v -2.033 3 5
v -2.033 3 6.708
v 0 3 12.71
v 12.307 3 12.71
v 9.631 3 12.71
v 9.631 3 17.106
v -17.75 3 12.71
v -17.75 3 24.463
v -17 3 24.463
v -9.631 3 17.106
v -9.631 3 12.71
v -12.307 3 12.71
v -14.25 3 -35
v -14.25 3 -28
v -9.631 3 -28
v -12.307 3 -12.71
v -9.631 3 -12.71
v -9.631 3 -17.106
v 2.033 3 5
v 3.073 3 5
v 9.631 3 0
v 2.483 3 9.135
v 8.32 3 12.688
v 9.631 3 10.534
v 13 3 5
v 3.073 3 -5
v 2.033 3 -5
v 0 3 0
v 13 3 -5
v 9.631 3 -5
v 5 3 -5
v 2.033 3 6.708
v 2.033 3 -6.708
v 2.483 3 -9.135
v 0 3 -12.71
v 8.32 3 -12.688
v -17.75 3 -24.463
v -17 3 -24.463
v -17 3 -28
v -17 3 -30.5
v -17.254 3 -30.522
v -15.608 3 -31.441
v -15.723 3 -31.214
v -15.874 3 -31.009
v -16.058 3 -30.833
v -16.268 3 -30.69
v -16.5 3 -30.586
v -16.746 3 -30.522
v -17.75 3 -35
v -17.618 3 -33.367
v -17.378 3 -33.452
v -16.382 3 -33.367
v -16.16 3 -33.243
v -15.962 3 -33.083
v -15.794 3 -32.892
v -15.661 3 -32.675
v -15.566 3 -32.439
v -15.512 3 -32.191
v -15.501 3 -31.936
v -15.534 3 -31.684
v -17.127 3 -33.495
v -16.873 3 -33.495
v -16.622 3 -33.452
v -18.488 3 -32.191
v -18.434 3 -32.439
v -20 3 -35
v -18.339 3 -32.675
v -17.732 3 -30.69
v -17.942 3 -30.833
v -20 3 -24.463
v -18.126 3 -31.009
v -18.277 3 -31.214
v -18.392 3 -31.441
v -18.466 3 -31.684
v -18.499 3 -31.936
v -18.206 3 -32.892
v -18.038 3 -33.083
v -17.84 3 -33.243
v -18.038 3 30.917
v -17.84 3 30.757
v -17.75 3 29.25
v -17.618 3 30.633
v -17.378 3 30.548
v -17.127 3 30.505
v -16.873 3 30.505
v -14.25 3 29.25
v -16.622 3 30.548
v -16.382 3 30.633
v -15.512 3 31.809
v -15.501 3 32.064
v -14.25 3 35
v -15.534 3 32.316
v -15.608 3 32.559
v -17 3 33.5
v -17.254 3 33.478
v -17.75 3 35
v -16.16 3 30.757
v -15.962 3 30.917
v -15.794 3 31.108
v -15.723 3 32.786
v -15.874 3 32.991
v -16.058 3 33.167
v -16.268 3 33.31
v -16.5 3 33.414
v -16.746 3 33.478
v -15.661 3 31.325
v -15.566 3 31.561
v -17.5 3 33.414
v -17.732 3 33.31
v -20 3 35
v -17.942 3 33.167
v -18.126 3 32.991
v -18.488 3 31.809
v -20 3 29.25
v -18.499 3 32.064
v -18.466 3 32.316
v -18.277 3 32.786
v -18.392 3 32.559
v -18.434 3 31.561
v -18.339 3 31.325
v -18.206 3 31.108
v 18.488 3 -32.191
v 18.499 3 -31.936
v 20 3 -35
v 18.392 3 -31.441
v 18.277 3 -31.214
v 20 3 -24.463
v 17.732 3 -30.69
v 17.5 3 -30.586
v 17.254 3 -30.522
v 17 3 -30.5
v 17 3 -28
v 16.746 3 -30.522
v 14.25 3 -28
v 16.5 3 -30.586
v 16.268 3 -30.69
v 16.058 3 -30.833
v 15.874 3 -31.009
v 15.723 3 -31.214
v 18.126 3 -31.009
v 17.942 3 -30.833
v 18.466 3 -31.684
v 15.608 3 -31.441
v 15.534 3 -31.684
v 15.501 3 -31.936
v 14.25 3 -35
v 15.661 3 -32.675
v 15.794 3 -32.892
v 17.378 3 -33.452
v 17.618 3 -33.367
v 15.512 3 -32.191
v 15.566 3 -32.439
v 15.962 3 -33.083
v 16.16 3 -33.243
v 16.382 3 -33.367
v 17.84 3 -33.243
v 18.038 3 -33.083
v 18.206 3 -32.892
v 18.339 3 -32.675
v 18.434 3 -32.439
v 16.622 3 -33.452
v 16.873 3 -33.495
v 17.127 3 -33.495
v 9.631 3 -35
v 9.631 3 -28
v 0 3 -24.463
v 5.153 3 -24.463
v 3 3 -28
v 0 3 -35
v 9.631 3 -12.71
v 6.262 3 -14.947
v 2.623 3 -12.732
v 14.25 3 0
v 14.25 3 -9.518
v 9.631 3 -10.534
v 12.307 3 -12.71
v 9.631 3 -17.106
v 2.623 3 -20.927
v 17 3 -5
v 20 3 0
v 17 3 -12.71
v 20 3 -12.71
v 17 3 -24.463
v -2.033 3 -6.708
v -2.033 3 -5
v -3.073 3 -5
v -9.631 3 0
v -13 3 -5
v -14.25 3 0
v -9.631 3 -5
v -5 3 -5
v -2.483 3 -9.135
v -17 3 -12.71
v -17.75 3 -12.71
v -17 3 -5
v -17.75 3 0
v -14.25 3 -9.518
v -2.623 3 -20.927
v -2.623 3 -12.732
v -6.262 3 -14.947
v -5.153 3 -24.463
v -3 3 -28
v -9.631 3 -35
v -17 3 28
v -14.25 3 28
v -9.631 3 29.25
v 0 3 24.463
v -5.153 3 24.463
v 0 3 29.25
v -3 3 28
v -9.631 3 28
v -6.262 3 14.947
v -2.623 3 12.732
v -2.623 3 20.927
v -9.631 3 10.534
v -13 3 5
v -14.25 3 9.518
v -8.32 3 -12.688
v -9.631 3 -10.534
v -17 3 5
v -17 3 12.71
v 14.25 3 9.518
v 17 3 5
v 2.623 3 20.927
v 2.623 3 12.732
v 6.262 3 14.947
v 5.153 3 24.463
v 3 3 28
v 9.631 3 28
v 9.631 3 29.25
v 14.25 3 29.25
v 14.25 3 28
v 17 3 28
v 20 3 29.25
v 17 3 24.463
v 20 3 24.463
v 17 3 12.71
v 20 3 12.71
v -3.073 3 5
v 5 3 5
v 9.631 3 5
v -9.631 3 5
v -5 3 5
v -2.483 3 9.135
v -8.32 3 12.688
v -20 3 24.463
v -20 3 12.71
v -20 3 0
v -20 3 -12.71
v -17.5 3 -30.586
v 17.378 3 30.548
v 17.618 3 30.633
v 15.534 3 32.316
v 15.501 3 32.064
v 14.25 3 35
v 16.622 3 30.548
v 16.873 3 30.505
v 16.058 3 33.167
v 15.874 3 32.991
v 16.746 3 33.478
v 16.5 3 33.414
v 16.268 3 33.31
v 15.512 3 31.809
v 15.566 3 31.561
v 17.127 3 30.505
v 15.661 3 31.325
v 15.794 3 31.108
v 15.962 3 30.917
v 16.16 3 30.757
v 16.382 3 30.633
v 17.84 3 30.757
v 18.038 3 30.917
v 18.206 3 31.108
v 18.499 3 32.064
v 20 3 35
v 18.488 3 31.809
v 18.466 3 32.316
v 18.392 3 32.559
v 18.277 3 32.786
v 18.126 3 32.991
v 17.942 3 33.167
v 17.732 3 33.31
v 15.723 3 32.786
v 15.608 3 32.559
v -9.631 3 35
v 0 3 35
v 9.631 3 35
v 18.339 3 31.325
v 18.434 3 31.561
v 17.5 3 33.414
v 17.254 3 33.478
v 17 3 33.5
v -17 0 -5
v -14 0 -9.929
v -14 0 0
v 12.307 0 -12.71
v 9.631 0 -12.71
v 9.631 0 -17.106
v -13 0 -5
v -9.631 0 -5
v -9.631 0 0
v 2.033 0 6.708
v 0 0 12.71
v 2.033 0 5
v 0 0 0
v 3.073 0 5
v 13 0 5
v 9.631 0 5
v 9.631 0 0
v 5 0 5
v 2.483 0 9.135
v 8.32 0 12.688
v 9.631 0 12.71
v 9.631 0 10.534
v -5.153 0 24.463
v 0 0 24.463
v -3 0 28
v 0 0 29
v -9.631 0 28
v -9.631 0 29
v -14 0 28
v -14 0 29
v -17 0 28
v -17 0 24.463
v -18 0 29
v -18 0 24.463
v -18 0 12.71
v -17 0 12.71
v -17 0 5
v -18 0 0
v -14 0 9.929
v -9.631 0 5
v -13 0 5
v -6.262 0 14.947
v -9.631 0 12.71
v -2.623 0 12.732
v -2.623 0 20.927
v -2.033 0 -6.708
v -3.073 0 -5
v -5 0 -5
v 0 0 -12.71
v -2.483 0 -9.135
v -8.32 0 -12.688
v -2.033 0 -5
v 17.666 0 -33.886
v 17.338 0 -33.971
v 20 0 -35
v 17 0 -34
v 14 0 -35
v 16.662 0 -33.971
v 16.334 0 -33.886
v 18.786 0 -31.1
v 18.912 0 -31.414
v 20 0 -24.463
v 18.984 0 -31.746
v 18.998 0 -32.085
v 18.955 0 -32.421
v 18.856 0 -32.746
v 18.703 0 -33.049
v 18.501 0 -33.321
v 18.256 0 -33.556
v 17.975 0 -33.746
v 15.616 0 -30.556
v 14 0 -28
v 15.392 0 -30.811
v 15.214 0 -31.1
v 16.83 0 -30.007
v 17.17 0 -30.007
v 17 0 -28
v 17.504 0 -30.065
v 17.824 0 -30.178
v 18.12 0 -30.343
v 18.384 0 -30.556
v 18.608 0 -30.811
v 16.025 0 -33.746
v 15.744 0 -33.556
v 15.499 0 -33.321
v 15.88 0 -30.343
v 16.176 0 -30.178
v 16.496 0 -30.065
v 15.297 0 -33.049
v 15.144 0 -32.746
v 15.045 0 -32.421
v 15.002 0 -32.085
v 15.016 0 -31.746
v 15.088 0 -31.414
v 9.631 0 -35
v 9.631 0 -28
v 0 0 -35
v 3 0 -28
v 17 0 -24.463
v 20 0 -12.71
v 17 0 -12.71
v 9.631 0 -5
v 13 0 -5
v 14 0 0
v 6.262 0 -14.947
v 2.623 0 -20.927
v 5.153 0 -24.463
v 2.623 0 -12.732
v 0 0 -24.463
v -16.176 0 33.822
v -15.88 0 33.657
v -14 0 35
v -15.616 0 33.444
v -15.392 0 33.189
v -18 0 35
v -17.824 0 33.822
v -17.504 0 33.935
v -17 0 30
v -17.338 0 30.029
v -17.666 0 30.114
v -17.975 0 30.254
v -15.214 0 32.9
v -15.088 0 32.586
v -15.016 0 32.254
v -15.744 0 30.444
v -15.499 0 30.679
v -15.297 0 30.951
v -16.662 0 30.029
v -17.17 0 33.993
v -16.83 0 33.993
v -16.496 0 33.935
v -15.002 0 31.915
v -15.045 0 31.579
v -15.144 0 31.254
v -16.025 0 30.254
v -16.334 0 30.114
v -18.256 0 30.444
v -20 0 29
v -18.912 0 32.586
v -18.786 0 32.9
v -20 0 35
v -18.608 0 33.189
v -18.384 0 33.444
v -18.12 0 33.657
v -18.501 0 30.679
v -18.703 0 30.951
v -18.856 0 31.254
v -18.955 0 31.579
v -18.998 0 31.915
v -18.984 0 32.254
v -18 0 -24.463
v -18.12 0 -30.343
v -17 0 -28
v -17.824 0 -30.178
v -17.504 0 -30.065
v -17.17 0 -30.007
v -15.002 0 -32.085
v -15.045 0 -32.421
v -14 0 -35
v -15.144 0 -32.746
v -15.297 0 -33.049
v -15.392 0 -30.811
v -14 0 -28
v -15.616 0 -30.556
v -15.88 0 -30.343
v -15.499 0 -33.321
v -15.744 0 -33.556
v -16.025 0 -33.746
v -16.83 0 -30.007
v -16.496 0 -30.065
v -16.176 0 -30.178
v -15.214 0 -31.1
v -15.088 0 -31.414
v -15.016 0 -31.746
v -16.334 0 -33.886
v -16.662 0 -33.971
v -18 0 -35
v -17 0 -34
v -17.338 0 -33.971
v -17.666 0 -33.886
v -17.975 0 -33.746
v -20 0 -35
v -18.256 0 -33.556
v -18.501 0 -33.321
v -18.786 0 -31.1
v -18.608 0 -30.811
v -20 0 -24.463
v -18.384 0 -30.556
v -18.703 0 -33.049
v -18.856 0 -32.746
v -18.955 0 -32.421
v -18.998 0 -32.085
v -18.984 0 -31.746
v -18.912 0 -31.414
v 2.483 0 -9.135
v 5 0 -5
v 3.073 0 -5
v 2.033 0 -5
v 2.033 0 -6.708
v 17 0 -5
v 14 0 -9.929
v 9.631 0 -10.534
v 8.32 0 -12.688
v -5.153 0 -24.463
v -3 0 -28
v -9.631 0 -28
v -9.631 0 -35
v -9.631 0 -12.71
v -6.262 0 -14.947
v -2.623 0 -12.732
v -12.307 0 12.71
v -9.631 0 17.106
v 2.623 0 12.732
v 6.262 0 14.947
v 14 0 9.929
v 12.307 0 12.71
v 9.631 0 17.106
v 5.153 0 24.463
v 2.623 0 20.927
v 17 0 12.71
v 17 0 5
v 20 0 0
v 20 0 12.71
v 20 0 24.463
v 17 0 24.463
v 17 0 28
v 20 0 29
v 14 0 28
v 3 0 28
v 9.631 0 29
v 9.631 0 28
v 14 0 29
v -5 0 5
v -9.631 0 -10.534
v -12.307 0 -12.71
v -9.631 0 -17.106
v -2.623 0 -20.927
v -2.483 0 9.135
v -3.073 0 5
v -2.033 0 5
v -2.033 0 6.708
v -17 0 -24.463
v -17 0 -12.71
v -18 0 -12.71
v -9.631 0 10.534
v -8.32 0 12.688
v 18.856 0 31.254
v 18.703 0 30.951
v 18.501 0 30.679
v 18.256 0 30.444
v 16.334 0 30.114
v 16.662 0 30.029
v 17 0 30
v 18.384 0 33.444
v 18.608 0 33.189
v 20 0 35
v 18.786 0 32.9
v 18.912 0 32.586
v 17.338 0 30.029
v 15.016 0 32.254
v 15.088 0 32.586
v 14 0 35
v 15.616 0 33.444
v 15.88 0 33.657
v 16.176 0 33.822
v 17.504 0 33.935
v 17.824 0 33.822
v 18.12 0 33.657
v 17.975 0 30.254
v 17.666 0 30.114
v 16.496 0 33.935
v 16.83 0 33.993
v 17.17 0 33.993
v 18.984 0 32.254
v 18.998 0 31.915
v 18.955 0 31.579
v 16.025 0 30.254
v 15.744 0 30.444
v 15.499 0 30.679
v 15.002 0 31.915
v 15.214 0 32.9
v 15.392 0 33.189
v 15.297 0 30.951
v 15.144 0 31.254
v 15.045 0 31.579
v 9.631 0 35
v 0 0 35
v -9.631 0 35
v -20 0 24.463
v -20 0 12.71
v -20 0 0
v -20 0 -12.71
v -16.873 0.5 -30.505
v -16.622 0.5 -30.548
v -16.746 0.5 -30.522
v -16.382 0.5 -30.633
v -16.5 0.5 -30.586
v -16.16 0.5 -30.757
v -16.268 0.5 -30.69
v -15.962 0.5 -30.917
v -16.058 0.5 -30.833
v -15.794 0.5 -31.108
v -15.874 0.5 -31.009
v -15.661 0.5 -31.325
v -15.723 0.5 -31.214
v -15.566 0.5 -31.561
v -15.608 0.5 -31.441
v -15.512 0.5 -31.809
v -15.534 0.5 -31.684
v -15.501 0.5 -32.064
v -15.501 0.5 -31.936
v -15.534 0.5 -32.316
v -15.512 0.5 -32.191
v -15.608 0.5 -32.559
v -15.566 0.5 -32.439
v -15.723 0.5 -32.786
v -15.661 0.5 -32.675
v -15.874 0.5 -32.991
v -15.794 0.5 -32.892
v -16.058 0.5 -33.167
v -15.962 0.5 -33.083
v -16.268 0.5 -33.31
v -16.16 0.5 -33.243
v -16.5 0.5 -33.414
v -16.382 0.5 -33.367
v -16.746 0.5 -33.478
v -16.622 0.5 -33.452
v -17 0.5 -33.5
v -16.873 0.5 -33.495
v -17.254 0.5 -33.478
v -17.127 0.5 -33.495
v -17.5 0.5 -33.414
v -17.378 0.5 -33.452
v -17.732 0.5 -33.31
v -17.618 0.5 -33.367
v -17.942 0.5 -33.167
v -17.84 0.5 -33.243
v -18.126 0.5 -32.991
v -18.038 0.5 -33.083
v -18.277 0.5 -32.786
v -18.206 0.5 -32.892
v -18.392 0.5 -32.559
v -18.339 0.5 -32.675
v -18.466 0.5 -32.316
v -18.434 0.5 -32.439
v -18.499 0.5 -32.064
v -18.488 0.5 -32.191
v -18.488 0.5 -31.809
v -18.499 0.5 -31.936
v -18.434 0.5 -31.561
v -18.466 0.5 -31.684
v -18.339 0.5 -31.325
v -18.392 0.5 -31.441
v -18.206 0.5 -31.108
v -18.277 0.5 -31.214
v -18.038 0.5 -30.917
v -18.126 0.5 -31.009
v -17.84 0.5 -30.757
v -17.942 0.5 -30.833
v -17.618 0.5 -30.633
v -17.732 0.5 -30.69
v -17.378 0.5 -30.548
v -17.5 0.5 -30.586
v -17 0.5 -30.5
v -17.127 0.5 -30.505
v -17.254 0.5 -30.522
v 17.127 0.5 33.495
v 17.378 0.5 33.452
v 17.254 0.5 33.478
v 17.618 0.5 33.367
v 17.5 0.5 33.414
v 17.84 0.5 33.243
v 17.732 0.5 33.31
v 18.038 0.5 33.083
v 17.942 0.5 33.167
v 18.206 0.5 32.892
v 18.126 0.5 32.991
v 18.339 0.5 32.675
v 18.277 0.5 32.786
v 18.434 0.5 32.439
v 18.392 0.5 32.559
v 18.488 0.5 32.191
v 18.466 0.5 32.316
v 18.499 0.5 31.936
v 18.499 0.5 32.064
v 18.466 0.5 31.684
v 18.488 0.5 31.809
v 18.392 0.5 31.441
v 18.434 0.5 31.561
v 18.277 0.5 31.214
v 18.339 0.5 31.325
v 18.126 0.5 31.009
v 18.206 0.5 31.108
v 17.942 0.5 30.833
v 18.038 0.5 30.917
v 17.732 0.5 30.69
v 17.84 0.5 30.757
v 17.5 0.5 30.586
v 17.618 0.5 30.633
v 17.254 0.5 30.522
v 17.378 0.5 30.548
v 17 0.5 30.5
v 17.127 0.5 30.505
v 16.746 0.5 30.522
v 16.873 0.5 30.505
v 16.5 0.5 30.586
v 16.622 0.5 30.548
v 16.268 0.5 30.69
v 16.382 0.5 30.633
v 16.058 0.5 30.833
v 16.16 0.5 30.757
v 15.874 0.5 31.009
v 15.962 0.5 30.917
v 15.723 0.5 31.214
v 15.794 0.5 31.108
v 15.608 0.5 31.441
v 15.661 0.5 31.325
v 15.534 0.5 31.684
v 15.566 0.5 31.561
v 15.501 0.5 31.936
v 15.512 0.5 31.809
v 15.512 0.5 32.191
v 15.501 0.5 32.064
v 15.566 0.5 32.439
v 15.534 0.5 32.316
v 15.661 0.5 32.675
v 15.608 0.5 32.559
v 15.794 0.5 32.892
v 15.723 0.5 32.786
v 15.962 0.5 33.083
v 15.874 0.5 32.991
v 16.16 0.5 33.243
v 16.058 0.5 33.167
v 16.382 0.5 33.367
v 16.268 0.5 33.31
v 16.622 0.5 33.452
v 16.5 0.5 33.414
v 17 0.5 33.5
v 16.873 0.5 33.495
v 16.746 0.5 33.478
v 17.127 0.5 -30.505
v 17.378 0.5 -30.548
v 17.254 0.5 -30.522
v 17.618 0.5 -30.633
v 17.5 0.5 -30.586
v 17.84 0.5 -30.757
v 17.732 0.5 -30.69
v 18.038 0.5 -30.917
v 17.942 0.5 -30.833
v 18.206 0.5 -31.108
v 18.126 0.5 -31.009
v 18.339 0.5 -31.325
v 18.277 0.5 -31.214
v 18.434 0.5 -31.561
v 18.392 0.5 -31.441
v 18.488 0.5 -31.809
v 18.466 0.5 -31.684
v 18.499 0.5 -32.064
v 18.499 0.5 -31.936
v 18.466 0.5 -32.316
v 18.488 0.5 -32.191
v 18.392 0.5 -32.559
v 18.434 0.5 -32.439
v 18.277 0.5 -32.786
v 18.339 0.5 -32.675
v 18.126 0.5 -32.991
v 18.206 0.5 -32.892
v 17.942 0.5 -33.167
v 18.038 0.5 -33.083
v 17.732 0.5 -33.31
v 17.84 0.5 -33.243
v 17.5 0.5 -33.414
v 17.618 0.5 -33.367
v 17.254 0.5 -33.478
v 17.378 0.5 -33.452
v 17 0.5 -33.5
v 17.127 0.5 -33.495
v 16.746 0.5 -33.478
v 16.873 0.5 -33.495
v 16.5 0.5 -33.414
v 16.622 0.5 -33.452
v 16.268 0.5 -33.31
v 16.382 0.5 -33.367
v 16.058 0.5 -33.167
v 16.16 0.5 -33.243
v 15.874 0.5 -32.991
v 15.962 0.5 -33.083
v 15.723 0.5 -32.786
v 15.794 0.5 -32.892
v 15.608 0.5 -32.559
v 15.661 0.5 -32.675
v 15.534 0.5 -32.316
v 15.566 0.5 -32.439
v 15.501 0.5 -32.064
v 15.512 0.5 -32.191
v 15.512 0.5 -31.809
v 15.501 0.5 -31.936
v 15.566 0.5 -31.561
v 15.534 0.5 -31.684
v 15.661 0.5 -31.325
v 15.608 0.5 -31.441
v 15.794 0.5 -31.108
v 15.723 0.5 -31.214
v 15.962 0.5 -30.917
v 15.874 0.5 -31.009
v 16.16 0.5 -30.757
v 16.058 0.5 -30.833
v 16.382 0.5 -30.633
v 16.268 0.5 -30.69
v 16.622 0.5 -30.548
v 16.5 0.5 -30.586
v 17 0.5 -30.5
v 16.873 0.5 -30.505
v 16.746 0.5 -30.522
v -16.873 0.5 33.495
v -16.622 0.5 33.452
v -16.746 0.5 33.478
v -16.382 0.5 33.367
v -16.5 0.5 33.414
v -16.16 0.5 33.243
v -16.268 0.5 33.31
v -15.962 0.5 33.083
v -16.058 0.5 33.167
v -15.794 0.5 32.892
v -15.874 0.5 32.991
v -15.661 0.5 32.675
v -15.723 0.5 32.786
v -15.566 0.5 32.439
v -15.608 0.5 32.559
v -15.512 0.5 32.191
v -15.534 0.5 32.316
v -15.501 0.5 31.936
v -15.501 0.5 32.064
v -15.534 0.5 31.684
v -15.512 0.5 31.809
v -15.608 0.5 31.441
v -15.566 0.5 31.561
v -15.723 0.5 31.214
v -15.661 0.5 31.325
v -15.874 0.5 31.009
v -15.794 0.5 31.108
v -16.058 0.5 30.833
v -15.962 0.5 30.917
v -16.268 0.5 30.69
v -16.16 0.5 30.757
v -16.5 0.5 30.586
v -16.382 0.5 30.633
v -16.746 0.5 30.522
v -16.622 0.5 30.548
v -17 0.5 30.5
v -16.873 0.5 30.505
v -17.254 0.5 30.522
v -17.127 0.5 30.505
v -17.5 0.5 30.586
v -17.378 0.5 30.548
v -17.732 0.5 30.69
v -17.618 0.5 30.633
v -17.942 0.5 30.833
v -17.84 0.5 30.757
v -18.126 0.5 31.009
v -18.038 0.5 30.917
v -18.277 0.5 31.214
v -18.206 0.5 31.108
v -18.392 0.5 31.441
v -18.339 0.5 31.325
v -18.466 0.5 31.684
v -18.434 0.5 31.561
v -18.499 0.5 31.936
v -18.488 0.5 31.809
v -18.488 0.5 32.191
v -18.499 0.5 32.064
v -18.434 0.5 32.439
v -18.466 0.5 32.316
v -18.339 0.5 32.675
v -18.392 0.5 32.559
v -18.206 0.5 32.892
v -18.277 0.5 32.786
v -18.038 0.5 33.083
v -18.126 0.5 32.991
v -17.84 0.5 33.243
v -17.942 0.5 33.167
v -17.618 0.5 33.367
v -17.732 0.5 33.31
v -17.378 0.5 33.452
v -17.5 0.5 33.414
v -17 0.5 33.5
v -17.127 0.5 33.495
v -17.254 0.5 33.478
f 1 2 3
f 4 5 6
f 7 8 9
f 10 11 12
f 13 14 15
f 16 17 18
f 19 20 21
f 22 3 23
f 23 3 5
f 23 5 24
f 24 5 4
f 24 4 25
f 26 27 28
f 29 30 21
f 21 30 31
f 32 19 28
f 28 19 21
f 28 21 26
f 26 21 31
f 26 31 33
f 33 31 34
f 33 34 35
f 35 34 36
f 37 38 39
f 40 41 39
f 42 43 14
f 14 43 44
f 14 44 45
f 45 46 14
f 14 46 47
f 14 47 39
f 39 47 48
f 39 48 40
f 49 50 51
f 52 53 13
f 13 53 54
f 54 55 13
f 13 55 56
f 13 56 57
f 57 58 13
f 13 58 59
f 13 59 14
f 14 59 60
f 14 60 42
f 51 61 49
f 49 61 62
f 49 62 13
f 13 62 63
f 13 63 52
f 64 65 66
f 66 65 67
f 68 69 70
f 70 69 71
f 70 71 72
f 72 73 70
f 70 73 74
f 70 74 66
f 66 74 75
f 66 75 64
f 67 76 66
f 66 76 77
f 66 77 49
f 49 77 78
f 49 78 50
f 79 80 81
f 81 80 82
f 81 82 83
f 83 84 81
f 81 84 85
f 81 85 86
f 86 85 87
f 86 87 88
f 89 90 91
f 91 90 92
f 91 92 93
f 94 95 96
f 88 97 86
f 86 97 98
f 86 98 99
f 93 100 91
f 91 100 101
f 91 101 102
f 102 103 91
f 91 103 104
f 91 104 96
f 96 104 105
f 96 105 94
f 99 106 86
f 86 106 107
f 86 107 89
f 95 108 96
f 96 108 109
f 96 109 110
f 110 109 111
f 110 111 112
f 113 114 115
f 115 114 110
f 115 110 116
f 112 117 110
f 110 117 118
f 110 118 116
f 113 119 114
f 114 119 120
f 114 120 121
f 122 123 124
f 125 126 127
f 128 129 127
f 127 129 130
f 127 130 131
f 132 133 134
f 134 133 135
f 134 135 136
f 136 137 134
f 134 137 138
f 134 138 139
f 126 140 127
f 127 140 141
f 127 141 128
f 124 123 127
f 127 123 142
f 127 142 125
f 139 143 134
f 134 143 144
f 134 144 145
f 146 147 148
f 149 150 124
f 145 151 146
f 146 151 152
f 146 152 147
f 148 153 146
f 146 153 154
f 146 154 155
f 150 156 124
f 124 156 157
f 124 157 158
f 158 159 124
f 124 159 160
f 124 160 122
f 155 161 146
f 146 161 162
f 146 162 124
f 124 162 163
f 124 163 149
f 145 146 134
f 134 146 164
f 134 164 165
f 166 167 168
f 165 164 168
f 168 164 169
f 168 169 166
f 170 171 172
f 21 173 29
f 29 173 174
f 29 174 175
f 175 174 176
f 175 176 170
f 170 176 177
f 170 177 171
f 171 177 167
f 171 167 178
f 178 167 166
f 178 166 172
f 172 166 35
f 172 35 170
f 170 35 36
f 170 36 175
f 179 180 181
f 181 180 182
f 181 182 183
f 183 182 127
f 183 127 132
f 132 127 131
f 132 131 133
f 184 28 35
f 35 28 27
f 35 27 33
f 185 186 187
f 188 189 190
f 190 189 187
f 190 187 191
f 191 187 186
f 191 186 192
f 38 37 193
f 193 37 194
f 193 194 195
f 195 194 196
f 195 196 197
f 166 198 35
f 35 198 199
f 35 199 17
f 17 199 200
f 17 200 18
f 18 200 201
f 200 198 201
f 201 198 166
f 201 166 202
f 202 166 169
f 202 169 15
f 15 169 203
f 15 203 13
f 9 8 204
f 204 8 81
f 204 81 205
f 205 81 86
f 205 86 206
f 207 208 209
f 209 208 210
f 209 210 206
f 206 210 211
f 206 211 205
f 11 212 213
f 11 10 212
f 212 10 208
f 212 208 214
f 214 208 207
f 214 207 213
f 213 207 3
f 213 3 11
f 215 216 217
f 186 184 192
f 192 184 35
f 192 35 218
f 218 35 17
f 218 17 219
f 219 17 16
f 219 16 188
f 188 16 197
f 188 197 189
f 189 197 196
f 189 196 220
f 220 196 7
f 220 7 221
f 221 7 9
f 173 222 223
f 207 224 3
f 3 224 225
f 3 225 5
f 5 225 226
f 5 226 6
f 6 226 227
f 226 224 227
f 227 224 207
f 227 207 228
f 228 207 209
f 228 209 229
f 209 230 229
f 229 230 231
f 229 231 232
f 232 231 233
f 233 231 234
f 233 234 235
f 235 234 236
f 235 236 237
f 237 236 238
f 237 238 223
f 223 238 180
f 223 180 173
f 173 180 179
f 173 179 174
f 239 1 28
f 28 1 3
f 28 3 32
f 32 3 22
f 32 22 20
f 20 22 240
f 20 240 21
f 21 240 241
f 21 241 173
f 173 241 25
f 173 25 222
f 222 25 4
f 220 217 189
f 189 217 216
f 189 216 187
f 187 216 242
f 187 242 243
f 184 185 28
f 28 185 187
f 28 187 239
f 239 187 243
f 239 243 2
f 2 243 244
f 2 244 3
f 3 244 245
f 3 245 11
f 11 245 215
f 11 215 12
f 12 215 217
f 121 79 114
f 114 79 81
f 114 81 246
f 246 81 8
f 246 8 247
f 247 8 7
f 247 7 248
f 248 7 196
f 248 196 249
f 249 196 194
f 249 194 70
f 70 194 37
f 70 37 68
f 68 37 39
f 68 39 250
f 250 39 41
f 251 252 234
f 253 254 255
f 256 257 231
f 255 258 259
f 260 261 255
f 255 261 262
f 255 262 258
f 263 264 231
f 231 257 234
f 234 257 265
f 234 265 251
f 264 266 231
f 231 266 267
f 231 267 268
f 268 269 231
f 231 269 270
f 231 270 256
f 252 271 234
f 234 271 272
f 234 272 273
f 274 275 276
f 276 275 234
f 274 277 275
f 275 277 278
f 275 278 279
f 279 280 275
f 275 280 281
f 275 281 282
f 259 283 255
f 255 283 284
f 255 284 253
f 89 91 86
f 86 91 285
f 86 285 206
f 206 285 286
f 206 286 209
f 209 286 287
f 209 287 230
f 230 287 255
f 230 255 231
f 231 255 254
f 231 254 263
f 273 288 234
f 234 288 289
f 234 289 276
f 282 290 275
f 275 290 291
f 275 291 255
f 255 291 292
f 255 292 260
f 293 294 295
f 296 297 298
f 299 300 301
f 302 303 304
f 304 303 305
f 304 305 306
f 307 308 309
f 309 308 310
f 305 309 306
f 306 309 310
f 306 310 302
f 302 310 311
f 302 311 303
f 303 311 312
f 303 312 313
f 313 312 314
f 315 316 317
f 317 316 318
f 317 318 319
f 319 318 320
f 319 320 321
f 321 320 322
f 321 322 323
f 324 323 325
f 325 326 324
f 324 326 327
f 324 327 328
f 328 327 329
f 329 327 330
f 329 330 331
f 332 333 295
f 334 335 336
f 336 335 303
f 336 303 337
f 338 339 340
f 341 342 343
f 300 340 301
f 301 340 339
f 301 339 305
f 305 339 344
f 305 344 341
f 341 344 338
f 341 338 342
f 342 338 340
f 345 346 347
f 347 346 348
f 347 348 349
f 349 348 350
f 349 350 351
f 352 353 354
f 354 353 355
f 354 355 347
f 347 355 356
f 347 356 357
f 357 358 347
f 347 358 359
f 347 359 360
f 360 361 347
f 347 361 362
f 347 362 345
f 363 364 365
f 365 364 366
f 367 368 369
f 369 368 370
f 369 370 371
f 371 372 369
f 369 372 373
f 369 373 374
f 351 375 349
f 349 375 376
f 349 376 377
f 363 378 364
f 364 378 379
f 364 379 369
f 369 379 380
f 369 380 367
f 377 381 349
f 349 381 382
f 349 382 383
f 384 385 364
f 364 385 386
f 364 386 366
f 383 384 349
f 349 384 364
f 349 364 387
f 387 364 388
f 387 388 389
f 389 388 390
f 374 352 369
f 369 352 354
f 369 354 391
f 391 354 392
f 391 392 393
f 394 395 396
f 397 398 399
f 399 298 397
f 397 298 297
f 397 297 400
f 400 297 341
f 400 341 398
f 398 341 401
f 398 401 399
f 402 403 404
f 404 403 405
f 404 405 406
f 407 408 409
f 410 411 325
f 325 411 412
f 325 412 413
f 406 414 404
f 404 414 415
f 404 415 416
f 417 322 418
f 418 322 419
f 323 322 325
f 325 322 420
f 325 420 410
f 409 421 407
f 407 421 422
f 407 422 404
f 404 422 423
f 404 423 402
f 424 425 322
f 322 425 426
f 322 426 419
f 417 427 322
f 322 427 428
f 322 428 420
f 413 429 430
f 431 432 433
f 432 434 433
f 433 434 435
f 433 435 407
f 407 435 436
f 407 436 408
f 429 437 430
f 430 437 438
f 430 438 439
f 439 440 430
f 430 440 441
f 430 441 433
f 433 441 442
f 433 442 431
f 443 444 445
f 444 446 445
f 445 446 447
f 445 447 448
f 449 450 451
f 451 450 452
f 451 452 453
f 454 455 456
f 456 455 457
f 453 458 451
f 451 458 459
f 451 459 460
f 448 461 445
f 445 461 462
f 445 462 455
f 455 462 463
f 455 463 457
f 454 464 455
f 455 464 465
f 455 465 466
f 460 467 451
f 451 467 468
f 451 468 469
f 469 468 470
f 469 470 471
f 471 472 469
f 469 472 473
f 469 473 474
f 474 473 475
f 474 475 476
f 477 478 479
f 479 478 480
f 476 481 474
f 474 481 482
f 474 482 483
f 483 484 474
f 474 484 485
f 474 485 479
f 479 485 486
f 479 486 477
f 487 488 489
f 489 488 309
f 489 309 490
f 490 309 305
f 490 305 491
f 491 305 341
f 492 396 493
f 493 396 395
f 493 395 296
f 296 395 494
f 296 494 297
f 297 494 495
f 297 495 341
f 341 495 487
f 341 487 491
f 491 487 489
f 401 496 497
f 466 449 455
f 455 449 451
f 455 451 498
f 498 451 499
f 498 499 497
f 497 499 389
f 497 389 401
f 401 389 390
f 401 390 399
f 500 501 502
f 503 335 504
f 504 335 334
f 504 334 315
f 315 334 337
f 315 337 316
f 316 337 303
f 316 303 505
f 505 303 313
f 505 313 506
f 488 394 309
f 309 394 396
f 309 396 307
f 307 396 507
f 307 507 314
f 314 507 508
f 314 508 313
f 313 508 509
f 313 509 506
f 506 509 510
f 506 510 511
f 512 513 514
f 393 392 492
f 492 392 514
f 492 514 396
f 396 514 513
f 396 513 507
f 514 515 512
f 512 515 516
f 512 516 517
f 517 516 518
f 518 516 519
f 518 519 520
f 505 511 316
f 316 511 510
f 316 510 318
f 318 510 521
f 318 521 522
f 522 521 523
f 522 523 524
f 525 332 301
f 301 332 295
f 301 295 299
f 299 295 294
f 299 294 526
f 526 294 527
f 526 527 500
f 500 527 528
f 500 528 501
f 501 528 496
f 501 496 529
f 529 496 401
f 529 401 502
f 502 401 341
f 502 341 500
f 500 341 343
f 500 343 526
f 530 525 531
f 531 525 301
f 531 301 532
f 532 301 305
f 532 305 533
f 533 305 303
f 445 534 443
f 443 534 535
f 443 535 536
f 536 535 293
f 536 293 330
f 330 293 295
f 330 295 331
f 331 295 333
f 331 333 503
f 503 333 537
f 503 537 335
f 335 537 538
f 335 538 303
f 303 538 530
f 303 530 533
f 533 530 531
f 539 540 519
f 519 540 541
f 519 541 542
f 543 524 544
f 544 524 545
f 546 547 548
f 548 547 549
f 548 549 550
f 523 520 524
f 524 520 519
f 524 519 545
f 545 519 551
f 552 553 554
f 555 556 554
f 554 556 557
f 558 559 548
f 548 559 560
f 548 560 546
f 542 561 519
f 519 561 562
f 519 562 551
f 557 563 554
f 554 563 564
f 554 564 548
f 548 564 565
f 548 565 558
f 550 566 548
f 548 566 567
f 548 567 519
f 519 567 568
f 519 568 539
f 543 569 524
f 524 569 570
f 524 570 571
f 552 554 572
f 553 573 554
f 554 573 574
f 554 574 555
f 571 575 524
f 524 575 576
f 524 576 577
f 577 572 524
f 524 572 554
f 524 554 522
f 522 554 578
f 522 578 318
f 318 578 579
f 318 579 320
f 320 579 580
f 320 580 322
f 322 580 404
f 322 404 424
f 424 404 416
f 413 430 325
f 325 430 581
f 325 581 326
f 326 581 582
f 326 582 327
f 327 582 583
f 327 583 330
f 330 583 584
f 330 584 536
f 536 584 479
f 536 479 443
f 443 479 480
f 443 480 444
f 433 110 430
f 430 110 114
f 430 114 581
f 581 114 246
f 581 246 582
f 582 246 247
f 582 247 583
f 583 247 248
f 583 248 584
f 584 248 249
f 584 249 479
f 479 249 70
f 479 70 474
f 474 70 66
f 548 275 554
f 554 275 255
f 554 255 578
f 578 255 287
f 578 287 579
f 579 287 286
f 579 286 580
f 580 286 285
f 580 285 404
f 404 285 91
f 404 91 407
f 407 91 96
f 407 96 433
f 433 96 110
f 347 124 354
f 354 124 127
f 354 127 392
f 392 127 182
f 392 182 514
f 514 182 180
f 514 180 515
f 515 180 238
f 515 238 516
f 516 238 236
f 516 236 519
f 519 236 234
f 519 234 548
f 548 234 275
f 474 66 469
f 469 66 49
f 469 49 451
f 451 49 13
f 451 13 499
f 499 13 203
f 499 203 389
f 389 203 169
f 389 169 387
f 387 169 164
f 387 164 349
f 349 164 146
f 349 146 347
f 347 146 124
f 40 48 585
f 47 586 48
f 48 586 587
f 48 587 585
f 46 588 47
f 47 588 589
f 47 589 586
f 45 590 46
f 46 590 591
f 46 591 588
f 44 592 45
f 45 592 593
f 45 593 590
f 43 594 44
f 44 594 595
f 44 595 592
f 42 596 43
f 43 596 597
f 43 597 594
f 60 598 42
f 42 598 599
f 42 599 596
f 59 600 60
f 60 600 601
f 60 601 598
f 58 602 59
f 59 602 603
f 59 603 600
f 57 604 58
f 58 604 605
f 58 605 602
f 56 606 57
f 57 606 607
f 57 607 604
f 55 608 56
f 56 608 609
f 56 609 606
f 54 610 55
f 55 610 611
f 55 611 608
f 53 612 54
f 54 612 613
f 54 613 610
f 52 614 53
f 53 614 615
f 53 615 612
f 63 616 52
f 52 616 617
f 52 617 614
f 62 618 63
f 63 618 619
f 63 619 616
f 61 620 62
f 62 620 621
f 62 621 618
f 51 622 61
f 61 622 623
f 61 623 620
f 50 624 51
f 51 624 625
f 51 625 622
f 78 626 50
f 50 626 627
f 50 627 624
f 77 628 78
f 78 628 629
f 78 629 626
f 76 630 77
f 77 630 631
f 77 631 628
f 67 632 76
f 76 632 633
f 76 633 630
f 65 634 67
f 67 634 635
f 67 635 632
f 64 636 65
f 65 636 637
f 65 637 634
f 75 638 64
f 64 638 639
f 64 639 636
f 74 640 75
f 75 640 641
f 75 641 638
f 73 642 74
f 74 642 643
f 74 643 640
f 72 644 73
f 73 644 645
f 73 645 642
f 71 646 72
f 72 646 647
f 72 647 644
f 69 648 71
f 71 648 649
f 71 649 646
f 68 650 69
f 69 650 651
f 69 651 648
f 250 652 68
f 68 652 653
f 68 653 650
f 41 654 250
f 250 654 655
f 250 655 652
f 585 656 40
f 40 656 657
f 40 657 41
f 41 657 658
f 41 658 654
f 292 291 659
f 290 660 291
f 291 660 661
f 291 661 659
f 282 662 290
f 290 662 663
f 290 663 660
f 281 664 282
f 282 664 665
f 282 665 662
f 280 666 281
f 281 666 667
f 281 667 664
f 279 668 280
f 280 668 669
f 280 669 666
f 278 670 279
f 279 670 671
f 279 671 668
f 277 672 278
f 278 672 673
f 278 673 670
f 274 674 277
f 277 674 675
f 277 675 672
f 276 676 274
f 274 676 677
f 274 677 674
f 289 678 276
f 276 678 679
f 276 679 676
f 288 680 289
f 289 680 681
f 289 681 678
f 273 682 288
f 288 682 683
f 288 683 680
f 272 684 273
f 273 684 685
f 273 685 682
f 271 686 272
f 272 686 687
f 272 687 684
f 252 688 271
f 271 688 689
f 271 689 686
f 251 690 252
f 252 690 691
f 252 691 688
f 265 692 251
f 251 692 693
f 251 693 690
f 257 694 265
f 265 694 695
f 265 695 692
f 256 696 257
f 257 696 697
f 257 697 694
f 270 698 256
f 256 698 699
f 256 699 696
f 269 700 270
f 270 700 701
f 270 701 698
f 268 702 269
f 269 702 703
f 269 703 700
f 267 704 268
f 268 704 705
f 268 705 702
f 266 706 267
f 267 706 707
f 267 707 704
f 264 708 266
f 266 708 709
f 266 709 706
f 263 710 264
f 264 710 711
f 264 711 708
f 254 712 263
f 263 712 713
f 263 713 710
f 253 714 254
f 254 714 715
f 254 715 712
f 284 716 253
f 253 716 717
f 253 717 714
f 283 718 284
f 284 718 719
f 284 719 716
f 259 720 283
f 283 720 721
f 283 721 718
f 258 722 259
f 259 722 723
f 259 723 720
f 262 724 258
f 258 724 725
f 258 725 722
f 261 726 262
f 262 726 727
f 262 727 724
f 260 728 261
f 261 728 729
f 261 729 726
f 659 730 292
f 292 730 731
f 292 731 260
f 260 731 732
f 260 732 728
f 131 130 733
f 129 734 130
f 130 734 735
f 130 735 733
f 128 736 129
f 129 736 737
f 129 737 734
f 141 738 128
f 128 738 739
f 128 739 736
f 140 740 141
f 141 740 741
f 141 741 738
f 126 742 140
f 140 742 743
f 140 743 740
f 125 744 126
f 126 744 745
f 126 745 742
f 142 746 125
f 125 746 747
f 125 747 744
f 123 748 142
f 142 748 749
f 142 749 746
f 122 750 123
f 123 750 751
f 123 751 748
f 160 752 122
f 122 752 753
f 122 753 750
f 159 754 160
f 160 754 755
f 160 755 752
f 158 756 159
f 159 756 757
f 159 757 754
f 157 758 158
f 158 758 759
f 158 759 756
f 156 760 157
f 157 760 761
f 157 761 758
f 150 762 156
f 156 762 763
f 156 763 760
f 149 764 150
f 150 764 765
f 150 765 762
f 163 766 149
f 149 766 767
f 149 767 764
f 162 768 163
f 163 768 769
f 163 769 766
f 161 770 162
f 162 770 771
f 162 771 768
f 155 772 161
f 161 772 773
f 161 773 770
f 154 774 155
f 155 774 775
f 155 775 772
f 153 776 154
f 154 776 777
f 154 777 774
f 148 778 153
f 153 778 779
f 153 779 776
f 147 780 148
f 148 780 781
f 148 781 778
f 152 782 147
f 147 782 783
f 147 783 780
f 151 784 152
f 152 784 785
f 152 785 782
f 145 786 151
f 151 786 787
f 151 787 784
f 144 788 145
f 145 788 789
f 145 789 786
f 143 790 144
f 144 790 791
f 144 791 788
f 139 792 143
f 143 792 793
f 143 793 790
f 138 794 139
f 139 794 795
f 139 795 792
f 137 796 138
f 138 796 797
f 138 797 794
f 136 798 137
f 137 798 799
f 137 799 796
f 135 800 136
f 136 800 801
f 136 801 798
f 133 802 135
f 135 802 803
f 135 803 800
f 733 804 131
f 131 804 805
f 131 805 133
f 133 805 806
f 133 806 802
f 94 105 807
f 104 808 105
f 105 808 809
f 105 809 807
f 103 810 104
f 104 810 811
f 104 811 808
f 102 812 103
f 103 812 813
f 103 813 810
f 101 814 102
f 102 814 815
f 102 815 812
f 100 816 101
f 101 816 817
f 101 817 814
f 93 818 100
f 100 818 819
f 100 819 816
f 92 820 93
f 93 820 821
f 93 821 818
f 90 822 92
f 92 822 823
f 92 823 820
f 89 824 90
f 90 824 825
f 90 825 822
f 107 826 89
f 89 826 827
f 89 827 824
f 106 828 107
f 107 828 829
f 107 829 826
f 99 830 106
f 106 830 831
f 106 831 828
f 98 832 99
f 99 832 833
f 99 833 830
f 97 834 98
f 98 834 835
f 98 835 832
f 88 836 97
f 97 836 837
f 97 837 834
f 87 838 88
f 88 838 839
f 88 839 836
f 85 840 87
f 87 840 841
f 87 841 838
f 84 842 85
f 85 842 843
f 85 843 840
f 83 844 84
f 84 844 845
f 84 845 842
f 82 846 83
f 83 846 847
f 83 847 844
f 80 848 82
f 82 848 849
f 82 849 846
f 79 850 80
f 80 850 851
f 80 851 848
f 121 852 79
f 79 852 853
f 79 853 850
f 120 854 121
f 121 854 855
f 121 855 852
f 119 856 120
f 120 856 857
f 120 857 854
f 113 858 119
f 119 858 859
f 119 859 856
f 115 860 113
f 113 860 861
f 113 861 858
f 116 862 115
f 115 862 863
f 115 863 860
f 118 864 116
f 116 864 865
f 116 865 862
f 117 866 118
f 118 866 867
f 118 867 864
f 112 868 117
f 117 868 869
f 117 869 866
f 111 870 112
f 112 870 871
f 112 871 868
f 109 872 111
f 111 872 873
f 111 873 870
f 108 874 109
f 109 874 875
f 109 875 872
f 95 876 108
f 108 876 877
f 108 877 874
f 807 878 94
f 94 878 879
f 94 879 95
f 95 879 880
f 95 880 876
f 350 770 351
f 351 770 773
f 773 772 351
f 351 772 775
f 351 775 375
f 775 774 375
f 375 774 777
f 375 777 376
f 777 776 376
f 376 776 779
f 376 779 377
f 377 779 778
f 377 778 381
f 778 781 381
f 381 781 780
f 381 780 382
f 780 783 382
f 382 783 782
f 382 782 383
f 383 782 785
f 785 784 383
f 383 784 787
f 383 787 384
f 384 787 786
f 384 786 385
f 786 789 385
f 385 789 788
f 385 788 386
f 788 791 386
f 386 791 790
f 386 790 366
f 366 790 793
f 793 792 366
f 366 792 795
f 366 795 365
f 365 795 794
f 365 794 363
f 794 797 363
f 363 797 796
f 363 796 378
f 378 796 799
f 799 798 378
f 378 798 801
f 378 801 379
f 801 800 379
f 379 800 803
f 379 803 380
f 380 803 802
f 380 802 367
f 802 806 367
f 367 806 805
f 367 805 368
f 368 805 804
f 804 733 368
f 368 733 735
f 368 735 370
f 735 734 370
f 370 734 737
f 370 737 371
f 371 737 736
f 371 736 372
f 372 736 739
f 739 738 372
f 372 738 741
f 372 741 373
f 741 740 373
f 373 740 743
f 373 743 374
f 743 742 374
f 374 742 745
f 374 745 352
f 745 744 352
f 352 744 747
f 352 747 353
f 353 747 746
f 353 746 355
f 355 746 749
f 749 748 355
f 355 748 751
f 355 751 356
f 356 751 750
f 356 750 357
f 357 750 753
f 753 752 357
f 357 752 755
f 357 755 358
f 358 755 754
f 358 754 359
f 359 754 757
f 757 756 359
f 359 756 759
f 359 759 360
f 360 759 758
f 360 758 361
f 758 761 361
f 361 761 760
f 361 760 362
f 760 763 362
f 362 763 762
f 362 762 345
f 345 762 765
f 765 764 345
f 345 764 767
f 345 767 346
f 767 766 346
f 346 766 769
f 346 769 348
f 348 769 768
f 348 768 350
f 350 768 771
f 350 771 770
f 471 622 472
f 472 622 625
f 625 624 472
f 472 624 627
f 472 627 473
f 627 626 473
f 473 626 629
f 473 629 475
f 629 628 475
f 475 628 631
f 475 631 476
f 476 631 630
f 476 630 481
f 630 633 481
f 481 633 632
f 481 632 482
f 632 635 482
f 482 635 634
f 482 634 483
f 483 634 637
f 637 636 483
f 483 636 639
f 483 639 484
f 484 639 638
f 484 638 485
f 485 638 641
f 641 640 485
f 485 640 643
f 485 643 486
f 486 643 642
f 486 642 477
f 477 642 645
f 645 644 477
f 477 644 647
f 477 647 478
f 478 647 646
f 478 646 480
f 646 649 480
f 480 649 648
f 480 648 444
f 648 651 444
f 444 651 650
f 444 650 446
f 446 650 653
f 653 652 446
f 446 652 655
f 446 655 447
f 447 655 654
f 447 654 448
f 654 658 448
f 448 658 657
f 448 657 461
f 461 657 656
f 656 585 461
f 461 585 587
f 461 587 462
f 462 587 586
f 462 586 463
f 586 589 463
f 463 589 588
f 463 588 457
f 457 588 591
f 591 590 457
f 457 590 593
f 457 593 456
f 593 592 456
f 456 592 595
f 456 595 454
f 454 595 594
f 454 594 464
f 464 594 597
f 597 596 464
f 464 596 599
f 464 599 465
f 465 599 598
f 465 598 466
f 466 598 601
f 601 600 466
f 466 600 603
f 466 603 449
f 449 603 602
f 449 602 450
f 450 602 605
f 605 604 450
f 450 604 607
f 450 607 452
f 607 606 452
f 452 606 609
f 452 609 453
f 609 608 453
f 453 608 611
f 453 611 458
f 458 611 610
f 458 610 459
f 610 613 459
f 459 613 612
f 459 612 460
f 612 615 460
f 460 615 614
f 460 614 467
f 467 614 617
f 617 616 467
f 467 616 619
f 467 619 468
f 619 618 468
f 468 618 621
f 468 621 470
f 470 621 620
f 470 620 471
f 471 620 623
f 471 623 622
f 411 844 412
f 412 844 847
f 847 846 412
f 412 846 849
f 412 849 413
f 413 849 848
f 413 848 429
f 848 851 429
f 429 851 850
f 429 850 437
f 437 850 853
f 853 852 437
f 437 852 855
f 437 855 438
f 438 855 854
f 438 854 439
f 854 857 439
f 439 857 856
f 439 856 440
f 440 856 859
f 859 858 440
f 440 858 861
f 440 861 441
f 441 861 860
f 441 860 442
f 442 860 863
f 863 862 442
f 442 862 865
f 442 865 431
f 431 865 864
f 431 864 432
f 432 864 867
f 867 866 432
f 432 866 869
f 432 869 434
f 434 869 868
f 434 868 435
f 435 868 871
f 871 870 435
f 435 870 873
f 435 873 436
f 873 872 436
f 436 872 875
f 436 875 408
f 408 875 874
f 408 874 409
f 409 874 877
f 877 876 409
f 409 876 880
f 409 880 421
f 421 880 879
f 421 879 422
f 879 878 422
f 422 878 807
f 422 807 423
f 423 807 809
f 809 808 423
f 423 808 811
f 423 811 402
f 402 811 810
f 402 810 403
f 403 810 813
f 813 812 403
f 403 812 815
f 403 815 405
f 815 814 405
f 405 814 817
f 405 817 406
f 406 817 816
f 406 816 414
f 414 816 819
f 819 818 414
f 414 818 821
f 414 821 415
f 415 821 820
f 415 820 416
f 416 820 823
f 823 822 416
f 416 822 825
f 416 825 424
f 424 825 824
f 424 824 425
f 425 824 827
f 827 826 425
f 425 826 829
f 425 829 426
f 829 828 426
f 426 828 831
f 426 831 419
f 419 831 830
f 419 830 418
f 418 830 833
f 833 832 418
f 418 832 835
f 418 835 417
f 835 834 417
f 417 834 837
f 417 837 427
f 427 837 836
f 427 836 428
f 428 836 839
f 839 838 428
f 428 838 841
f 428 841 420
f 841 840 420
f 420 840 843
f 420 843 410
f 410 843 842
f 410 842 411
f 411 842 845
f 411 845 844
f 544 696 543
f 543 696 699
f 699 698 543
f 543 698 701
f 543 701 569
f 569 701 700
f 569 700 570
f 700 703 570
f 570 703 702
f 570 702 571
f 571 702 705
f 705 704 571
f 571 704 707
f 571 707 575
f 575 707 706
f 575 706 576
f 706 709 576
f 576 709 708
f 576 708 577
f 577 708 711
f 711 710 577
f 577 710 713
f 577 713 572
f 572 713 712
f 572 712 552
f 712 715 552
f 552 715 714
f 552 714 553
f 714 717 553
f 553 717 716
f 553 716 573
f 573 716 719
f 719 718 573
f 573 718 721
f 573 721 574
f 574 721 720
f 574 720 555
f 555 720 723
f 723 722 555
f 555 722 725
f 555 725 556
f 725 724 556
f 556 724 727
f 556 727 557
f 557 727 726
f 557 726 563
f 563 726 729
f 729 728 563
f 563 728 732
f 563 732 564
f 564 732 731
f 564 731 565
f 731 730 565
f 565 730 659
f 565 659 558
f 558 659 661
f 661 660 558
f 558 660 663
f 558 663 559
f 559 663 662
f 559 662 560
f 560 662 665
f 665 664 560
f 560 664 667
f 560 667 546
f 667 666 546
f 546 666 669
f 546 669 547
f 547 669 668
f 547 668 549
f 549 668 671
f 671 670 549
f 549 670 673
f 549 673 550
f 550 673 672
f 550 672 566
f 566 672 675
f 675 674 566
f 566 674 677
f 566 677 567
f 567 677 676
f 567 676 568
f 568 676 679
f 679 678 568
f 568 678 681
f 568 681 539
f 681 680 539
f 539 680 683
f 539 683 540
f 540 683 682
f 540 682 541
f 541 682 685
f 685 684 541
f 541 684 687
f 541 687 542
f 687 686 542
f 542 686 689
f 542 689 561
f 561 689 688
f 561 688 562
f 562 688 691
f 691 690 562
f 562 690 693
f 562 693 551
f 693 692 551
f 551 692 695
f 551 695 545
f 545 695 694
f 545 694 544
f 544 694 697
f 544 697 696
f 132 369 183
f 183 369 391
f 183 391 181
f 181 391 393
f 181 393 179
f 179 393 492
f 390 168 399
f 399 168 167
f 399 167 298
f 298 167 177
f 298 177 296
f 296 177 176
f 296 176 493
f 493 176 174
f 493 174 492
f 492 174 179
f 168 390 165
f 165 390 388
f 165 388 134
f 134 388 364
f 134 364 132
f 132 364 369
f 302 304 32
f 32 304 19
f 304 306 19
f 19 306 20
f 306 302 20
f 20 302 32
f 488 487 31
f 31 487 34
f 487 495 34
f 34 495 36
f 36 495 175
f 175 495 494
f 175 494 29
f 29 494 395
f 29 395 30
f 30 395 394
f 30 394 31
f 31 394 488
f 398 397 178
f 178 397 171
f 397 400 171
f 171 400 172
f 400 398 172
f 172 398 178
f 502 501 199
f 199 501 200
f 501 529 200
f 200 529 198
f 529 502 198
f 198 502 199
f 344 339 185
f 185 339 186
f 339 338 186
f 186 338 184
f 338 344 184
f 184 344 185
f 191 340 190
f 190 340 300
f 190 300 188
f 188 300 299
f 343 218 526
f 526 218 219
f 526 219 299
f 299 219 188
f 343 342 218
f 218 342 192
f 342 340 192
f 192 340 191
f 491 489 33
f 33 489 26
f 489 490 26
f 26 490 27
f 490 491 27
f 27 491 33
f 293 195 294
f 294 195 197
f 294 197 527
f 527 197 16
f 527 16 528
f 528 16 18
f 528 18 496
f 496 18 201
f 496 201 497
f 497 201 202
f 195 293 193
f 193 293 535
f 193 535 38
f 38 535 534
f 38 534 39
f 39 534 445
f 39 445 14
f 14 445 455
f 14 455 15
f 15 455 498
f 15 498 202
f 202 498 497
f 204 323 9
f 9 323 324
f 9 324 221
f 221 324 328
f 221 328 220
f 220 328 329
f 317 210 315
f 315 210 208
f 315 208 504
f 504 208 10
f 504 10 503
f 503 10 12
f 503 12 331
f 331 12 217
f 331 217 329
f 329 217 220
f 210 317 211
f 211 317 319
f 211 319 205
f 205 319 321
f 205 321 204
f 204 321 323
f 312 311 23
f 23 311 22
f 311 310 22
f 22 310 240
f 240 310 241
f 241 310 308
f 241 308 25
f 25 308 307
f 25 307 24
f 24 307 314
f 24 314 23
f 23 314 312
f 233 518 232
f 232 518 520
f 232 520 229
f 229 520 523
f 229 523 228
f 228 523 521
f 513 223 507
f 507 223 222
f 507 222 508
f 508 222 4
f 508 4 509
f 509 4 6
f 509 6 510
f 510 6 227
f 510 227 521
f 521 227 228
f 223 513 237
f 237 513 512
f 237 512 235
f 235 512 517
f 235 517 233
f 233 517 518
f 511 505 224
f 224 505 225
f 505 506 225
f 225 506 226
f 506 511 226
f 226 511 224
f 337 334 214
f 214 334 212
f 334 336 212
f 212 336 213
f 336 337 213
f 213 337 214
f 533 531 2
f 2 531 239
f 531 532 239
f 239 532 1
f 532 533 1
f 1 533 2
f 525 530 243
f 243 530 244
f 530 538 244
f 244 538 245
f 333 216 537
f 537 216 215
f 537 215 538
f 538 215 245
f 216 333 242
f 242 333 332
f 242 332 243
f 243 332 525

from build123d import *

# Parameters (mm, degrees)
SKETCH_1_W          = 40
SKETCH_1_H          = 70
EXTRUDE_1_DEPTH     = 3
SKETCH_2_R          = 1.5
CUT_EXTRUDE_1_DEPTH = 3
CHAMFER_1_SIZE      = 0.5
CUT_EXTRUDE_2_DEPTH = 3


with BuildPart() as part:
    # 草图1 → 凸台-拉伸1 (new body)
    with BuildSketch(Plane(origin=(0, 0, 0), x_dir=(1, 0, 0), z_dir=(0, 1, 0))):
        Rectangle(SKETCH_1_W, SKETCH_1_H)
    extrude(amount=EXTRUDE_1_DEPTH)

    # 草图2 → 切除-拉伸1 (cut)
    with BuildSketch(Plane(origin=(0, 3, 0), x_dir=(1, 0, 0), z_dir=(0, 1, 0))):
        with Locations(Location((-17, 32, 0), (0, 0, 270))):
            Circle(SKETCH_2_R)
        with Locations(Location((-17, -32, 0), (0, 0, 270))):
            Circle(SKETCH_2_R)
        with Locations(Location((17, 32, 0), (0, 0, 270))):
            Circle(SKETCH_2_R)
        with Locations(Location((17, -32, 0), (0, 0, 270))):
            Circle(SKETCH_2_R)
    extrude(amount=-CUT_EXTRUDE_1_DEPTH, mode=Mode.SUBTRACT)

    # 倒角1
    chamfer_1_edges = [part.edges().sort_by_distance(p)[0] for p in [
        (-17, 0, 30.5),
        (17, 0, -33.5),
        (17, 0, 30.5),
        (-17, 0, -33.5),
    ]]
    chamfer(chamfer_1_edges, length=CHAMFER_1_SIZE)

    # 草图3 → 切除-拉伸2 (cut)
    with BuildSketch(Plane(origin=(0, 3, 0), x_dir=(1, 0, 0), z_dir=(0, 1, 0))):
        Polygon((-17, 28), (-17, 5), (-3, 28), align=None)
        Polygon((-2.622834476, 20.926536493), (-6.262463104, 14.947146604), (-2.622834476, 12.731720482), align=None)
        Polygon((-8.320477478, 12.687787001), (-2.483236099, 9.134683552), (-5, 5), (-13, 5), align=None)
        Polygon((-2.032840116, 6.708397111), (-3.07273401, 5), (-2.032840116, 5), align=None)
        Polygon((3.07273401, 5), (2.032840116, 5), (2.032840116, 6.708397111), align=None)
        Polygon((5, 5), (13, 5), (8.320477478, 12.687787001), (2.483236099, 9.134683552), align=None)
        Polygon((6.262463104, 14.947146604), (2.622834476, 12.731720482), (2.622834476, 20.926536493), align=None)
        Polygon((17, 5), (3, 28), (17, 28), align=None)
        Polygon((2.032840116, -6.708397111), (3.07273401, -5), (2.032840116, -5), align=None)
        Polygon((-3.07273401, -5), (-2.032840116, -5), (-2.032840116, -6.708397111), align=None)
        Polygon((2.483236099, -9.134683552), (5, -5), (13, -5), (8.320477478, -12.687787001), align=None)
        Polygon((-5, -5), (-13, -5), (-8.320477478, -12.687787001), (-2.483236099, -9.134683552), align=None)
        Polygon((-6.262463104, -14.947146604), (-2.622834476, -12.731720482), (-2.622834476, -20.926536493), align=None)
        Polygon((2.622834476, -20.926536493), (6.262463104, -14.947146604), (2.622834476, -12.731720482), align=None)
        Polygon((17, -28), (17, -5), (3, -28), align=None)
        Polygon((-17, -5), (-3, -28), (-17, -28), align=None)
    extrude(amount=-CUT_EXTRUDE_2_DEPTH, mode=Mode.SUBTRACT)


solid = part.part
